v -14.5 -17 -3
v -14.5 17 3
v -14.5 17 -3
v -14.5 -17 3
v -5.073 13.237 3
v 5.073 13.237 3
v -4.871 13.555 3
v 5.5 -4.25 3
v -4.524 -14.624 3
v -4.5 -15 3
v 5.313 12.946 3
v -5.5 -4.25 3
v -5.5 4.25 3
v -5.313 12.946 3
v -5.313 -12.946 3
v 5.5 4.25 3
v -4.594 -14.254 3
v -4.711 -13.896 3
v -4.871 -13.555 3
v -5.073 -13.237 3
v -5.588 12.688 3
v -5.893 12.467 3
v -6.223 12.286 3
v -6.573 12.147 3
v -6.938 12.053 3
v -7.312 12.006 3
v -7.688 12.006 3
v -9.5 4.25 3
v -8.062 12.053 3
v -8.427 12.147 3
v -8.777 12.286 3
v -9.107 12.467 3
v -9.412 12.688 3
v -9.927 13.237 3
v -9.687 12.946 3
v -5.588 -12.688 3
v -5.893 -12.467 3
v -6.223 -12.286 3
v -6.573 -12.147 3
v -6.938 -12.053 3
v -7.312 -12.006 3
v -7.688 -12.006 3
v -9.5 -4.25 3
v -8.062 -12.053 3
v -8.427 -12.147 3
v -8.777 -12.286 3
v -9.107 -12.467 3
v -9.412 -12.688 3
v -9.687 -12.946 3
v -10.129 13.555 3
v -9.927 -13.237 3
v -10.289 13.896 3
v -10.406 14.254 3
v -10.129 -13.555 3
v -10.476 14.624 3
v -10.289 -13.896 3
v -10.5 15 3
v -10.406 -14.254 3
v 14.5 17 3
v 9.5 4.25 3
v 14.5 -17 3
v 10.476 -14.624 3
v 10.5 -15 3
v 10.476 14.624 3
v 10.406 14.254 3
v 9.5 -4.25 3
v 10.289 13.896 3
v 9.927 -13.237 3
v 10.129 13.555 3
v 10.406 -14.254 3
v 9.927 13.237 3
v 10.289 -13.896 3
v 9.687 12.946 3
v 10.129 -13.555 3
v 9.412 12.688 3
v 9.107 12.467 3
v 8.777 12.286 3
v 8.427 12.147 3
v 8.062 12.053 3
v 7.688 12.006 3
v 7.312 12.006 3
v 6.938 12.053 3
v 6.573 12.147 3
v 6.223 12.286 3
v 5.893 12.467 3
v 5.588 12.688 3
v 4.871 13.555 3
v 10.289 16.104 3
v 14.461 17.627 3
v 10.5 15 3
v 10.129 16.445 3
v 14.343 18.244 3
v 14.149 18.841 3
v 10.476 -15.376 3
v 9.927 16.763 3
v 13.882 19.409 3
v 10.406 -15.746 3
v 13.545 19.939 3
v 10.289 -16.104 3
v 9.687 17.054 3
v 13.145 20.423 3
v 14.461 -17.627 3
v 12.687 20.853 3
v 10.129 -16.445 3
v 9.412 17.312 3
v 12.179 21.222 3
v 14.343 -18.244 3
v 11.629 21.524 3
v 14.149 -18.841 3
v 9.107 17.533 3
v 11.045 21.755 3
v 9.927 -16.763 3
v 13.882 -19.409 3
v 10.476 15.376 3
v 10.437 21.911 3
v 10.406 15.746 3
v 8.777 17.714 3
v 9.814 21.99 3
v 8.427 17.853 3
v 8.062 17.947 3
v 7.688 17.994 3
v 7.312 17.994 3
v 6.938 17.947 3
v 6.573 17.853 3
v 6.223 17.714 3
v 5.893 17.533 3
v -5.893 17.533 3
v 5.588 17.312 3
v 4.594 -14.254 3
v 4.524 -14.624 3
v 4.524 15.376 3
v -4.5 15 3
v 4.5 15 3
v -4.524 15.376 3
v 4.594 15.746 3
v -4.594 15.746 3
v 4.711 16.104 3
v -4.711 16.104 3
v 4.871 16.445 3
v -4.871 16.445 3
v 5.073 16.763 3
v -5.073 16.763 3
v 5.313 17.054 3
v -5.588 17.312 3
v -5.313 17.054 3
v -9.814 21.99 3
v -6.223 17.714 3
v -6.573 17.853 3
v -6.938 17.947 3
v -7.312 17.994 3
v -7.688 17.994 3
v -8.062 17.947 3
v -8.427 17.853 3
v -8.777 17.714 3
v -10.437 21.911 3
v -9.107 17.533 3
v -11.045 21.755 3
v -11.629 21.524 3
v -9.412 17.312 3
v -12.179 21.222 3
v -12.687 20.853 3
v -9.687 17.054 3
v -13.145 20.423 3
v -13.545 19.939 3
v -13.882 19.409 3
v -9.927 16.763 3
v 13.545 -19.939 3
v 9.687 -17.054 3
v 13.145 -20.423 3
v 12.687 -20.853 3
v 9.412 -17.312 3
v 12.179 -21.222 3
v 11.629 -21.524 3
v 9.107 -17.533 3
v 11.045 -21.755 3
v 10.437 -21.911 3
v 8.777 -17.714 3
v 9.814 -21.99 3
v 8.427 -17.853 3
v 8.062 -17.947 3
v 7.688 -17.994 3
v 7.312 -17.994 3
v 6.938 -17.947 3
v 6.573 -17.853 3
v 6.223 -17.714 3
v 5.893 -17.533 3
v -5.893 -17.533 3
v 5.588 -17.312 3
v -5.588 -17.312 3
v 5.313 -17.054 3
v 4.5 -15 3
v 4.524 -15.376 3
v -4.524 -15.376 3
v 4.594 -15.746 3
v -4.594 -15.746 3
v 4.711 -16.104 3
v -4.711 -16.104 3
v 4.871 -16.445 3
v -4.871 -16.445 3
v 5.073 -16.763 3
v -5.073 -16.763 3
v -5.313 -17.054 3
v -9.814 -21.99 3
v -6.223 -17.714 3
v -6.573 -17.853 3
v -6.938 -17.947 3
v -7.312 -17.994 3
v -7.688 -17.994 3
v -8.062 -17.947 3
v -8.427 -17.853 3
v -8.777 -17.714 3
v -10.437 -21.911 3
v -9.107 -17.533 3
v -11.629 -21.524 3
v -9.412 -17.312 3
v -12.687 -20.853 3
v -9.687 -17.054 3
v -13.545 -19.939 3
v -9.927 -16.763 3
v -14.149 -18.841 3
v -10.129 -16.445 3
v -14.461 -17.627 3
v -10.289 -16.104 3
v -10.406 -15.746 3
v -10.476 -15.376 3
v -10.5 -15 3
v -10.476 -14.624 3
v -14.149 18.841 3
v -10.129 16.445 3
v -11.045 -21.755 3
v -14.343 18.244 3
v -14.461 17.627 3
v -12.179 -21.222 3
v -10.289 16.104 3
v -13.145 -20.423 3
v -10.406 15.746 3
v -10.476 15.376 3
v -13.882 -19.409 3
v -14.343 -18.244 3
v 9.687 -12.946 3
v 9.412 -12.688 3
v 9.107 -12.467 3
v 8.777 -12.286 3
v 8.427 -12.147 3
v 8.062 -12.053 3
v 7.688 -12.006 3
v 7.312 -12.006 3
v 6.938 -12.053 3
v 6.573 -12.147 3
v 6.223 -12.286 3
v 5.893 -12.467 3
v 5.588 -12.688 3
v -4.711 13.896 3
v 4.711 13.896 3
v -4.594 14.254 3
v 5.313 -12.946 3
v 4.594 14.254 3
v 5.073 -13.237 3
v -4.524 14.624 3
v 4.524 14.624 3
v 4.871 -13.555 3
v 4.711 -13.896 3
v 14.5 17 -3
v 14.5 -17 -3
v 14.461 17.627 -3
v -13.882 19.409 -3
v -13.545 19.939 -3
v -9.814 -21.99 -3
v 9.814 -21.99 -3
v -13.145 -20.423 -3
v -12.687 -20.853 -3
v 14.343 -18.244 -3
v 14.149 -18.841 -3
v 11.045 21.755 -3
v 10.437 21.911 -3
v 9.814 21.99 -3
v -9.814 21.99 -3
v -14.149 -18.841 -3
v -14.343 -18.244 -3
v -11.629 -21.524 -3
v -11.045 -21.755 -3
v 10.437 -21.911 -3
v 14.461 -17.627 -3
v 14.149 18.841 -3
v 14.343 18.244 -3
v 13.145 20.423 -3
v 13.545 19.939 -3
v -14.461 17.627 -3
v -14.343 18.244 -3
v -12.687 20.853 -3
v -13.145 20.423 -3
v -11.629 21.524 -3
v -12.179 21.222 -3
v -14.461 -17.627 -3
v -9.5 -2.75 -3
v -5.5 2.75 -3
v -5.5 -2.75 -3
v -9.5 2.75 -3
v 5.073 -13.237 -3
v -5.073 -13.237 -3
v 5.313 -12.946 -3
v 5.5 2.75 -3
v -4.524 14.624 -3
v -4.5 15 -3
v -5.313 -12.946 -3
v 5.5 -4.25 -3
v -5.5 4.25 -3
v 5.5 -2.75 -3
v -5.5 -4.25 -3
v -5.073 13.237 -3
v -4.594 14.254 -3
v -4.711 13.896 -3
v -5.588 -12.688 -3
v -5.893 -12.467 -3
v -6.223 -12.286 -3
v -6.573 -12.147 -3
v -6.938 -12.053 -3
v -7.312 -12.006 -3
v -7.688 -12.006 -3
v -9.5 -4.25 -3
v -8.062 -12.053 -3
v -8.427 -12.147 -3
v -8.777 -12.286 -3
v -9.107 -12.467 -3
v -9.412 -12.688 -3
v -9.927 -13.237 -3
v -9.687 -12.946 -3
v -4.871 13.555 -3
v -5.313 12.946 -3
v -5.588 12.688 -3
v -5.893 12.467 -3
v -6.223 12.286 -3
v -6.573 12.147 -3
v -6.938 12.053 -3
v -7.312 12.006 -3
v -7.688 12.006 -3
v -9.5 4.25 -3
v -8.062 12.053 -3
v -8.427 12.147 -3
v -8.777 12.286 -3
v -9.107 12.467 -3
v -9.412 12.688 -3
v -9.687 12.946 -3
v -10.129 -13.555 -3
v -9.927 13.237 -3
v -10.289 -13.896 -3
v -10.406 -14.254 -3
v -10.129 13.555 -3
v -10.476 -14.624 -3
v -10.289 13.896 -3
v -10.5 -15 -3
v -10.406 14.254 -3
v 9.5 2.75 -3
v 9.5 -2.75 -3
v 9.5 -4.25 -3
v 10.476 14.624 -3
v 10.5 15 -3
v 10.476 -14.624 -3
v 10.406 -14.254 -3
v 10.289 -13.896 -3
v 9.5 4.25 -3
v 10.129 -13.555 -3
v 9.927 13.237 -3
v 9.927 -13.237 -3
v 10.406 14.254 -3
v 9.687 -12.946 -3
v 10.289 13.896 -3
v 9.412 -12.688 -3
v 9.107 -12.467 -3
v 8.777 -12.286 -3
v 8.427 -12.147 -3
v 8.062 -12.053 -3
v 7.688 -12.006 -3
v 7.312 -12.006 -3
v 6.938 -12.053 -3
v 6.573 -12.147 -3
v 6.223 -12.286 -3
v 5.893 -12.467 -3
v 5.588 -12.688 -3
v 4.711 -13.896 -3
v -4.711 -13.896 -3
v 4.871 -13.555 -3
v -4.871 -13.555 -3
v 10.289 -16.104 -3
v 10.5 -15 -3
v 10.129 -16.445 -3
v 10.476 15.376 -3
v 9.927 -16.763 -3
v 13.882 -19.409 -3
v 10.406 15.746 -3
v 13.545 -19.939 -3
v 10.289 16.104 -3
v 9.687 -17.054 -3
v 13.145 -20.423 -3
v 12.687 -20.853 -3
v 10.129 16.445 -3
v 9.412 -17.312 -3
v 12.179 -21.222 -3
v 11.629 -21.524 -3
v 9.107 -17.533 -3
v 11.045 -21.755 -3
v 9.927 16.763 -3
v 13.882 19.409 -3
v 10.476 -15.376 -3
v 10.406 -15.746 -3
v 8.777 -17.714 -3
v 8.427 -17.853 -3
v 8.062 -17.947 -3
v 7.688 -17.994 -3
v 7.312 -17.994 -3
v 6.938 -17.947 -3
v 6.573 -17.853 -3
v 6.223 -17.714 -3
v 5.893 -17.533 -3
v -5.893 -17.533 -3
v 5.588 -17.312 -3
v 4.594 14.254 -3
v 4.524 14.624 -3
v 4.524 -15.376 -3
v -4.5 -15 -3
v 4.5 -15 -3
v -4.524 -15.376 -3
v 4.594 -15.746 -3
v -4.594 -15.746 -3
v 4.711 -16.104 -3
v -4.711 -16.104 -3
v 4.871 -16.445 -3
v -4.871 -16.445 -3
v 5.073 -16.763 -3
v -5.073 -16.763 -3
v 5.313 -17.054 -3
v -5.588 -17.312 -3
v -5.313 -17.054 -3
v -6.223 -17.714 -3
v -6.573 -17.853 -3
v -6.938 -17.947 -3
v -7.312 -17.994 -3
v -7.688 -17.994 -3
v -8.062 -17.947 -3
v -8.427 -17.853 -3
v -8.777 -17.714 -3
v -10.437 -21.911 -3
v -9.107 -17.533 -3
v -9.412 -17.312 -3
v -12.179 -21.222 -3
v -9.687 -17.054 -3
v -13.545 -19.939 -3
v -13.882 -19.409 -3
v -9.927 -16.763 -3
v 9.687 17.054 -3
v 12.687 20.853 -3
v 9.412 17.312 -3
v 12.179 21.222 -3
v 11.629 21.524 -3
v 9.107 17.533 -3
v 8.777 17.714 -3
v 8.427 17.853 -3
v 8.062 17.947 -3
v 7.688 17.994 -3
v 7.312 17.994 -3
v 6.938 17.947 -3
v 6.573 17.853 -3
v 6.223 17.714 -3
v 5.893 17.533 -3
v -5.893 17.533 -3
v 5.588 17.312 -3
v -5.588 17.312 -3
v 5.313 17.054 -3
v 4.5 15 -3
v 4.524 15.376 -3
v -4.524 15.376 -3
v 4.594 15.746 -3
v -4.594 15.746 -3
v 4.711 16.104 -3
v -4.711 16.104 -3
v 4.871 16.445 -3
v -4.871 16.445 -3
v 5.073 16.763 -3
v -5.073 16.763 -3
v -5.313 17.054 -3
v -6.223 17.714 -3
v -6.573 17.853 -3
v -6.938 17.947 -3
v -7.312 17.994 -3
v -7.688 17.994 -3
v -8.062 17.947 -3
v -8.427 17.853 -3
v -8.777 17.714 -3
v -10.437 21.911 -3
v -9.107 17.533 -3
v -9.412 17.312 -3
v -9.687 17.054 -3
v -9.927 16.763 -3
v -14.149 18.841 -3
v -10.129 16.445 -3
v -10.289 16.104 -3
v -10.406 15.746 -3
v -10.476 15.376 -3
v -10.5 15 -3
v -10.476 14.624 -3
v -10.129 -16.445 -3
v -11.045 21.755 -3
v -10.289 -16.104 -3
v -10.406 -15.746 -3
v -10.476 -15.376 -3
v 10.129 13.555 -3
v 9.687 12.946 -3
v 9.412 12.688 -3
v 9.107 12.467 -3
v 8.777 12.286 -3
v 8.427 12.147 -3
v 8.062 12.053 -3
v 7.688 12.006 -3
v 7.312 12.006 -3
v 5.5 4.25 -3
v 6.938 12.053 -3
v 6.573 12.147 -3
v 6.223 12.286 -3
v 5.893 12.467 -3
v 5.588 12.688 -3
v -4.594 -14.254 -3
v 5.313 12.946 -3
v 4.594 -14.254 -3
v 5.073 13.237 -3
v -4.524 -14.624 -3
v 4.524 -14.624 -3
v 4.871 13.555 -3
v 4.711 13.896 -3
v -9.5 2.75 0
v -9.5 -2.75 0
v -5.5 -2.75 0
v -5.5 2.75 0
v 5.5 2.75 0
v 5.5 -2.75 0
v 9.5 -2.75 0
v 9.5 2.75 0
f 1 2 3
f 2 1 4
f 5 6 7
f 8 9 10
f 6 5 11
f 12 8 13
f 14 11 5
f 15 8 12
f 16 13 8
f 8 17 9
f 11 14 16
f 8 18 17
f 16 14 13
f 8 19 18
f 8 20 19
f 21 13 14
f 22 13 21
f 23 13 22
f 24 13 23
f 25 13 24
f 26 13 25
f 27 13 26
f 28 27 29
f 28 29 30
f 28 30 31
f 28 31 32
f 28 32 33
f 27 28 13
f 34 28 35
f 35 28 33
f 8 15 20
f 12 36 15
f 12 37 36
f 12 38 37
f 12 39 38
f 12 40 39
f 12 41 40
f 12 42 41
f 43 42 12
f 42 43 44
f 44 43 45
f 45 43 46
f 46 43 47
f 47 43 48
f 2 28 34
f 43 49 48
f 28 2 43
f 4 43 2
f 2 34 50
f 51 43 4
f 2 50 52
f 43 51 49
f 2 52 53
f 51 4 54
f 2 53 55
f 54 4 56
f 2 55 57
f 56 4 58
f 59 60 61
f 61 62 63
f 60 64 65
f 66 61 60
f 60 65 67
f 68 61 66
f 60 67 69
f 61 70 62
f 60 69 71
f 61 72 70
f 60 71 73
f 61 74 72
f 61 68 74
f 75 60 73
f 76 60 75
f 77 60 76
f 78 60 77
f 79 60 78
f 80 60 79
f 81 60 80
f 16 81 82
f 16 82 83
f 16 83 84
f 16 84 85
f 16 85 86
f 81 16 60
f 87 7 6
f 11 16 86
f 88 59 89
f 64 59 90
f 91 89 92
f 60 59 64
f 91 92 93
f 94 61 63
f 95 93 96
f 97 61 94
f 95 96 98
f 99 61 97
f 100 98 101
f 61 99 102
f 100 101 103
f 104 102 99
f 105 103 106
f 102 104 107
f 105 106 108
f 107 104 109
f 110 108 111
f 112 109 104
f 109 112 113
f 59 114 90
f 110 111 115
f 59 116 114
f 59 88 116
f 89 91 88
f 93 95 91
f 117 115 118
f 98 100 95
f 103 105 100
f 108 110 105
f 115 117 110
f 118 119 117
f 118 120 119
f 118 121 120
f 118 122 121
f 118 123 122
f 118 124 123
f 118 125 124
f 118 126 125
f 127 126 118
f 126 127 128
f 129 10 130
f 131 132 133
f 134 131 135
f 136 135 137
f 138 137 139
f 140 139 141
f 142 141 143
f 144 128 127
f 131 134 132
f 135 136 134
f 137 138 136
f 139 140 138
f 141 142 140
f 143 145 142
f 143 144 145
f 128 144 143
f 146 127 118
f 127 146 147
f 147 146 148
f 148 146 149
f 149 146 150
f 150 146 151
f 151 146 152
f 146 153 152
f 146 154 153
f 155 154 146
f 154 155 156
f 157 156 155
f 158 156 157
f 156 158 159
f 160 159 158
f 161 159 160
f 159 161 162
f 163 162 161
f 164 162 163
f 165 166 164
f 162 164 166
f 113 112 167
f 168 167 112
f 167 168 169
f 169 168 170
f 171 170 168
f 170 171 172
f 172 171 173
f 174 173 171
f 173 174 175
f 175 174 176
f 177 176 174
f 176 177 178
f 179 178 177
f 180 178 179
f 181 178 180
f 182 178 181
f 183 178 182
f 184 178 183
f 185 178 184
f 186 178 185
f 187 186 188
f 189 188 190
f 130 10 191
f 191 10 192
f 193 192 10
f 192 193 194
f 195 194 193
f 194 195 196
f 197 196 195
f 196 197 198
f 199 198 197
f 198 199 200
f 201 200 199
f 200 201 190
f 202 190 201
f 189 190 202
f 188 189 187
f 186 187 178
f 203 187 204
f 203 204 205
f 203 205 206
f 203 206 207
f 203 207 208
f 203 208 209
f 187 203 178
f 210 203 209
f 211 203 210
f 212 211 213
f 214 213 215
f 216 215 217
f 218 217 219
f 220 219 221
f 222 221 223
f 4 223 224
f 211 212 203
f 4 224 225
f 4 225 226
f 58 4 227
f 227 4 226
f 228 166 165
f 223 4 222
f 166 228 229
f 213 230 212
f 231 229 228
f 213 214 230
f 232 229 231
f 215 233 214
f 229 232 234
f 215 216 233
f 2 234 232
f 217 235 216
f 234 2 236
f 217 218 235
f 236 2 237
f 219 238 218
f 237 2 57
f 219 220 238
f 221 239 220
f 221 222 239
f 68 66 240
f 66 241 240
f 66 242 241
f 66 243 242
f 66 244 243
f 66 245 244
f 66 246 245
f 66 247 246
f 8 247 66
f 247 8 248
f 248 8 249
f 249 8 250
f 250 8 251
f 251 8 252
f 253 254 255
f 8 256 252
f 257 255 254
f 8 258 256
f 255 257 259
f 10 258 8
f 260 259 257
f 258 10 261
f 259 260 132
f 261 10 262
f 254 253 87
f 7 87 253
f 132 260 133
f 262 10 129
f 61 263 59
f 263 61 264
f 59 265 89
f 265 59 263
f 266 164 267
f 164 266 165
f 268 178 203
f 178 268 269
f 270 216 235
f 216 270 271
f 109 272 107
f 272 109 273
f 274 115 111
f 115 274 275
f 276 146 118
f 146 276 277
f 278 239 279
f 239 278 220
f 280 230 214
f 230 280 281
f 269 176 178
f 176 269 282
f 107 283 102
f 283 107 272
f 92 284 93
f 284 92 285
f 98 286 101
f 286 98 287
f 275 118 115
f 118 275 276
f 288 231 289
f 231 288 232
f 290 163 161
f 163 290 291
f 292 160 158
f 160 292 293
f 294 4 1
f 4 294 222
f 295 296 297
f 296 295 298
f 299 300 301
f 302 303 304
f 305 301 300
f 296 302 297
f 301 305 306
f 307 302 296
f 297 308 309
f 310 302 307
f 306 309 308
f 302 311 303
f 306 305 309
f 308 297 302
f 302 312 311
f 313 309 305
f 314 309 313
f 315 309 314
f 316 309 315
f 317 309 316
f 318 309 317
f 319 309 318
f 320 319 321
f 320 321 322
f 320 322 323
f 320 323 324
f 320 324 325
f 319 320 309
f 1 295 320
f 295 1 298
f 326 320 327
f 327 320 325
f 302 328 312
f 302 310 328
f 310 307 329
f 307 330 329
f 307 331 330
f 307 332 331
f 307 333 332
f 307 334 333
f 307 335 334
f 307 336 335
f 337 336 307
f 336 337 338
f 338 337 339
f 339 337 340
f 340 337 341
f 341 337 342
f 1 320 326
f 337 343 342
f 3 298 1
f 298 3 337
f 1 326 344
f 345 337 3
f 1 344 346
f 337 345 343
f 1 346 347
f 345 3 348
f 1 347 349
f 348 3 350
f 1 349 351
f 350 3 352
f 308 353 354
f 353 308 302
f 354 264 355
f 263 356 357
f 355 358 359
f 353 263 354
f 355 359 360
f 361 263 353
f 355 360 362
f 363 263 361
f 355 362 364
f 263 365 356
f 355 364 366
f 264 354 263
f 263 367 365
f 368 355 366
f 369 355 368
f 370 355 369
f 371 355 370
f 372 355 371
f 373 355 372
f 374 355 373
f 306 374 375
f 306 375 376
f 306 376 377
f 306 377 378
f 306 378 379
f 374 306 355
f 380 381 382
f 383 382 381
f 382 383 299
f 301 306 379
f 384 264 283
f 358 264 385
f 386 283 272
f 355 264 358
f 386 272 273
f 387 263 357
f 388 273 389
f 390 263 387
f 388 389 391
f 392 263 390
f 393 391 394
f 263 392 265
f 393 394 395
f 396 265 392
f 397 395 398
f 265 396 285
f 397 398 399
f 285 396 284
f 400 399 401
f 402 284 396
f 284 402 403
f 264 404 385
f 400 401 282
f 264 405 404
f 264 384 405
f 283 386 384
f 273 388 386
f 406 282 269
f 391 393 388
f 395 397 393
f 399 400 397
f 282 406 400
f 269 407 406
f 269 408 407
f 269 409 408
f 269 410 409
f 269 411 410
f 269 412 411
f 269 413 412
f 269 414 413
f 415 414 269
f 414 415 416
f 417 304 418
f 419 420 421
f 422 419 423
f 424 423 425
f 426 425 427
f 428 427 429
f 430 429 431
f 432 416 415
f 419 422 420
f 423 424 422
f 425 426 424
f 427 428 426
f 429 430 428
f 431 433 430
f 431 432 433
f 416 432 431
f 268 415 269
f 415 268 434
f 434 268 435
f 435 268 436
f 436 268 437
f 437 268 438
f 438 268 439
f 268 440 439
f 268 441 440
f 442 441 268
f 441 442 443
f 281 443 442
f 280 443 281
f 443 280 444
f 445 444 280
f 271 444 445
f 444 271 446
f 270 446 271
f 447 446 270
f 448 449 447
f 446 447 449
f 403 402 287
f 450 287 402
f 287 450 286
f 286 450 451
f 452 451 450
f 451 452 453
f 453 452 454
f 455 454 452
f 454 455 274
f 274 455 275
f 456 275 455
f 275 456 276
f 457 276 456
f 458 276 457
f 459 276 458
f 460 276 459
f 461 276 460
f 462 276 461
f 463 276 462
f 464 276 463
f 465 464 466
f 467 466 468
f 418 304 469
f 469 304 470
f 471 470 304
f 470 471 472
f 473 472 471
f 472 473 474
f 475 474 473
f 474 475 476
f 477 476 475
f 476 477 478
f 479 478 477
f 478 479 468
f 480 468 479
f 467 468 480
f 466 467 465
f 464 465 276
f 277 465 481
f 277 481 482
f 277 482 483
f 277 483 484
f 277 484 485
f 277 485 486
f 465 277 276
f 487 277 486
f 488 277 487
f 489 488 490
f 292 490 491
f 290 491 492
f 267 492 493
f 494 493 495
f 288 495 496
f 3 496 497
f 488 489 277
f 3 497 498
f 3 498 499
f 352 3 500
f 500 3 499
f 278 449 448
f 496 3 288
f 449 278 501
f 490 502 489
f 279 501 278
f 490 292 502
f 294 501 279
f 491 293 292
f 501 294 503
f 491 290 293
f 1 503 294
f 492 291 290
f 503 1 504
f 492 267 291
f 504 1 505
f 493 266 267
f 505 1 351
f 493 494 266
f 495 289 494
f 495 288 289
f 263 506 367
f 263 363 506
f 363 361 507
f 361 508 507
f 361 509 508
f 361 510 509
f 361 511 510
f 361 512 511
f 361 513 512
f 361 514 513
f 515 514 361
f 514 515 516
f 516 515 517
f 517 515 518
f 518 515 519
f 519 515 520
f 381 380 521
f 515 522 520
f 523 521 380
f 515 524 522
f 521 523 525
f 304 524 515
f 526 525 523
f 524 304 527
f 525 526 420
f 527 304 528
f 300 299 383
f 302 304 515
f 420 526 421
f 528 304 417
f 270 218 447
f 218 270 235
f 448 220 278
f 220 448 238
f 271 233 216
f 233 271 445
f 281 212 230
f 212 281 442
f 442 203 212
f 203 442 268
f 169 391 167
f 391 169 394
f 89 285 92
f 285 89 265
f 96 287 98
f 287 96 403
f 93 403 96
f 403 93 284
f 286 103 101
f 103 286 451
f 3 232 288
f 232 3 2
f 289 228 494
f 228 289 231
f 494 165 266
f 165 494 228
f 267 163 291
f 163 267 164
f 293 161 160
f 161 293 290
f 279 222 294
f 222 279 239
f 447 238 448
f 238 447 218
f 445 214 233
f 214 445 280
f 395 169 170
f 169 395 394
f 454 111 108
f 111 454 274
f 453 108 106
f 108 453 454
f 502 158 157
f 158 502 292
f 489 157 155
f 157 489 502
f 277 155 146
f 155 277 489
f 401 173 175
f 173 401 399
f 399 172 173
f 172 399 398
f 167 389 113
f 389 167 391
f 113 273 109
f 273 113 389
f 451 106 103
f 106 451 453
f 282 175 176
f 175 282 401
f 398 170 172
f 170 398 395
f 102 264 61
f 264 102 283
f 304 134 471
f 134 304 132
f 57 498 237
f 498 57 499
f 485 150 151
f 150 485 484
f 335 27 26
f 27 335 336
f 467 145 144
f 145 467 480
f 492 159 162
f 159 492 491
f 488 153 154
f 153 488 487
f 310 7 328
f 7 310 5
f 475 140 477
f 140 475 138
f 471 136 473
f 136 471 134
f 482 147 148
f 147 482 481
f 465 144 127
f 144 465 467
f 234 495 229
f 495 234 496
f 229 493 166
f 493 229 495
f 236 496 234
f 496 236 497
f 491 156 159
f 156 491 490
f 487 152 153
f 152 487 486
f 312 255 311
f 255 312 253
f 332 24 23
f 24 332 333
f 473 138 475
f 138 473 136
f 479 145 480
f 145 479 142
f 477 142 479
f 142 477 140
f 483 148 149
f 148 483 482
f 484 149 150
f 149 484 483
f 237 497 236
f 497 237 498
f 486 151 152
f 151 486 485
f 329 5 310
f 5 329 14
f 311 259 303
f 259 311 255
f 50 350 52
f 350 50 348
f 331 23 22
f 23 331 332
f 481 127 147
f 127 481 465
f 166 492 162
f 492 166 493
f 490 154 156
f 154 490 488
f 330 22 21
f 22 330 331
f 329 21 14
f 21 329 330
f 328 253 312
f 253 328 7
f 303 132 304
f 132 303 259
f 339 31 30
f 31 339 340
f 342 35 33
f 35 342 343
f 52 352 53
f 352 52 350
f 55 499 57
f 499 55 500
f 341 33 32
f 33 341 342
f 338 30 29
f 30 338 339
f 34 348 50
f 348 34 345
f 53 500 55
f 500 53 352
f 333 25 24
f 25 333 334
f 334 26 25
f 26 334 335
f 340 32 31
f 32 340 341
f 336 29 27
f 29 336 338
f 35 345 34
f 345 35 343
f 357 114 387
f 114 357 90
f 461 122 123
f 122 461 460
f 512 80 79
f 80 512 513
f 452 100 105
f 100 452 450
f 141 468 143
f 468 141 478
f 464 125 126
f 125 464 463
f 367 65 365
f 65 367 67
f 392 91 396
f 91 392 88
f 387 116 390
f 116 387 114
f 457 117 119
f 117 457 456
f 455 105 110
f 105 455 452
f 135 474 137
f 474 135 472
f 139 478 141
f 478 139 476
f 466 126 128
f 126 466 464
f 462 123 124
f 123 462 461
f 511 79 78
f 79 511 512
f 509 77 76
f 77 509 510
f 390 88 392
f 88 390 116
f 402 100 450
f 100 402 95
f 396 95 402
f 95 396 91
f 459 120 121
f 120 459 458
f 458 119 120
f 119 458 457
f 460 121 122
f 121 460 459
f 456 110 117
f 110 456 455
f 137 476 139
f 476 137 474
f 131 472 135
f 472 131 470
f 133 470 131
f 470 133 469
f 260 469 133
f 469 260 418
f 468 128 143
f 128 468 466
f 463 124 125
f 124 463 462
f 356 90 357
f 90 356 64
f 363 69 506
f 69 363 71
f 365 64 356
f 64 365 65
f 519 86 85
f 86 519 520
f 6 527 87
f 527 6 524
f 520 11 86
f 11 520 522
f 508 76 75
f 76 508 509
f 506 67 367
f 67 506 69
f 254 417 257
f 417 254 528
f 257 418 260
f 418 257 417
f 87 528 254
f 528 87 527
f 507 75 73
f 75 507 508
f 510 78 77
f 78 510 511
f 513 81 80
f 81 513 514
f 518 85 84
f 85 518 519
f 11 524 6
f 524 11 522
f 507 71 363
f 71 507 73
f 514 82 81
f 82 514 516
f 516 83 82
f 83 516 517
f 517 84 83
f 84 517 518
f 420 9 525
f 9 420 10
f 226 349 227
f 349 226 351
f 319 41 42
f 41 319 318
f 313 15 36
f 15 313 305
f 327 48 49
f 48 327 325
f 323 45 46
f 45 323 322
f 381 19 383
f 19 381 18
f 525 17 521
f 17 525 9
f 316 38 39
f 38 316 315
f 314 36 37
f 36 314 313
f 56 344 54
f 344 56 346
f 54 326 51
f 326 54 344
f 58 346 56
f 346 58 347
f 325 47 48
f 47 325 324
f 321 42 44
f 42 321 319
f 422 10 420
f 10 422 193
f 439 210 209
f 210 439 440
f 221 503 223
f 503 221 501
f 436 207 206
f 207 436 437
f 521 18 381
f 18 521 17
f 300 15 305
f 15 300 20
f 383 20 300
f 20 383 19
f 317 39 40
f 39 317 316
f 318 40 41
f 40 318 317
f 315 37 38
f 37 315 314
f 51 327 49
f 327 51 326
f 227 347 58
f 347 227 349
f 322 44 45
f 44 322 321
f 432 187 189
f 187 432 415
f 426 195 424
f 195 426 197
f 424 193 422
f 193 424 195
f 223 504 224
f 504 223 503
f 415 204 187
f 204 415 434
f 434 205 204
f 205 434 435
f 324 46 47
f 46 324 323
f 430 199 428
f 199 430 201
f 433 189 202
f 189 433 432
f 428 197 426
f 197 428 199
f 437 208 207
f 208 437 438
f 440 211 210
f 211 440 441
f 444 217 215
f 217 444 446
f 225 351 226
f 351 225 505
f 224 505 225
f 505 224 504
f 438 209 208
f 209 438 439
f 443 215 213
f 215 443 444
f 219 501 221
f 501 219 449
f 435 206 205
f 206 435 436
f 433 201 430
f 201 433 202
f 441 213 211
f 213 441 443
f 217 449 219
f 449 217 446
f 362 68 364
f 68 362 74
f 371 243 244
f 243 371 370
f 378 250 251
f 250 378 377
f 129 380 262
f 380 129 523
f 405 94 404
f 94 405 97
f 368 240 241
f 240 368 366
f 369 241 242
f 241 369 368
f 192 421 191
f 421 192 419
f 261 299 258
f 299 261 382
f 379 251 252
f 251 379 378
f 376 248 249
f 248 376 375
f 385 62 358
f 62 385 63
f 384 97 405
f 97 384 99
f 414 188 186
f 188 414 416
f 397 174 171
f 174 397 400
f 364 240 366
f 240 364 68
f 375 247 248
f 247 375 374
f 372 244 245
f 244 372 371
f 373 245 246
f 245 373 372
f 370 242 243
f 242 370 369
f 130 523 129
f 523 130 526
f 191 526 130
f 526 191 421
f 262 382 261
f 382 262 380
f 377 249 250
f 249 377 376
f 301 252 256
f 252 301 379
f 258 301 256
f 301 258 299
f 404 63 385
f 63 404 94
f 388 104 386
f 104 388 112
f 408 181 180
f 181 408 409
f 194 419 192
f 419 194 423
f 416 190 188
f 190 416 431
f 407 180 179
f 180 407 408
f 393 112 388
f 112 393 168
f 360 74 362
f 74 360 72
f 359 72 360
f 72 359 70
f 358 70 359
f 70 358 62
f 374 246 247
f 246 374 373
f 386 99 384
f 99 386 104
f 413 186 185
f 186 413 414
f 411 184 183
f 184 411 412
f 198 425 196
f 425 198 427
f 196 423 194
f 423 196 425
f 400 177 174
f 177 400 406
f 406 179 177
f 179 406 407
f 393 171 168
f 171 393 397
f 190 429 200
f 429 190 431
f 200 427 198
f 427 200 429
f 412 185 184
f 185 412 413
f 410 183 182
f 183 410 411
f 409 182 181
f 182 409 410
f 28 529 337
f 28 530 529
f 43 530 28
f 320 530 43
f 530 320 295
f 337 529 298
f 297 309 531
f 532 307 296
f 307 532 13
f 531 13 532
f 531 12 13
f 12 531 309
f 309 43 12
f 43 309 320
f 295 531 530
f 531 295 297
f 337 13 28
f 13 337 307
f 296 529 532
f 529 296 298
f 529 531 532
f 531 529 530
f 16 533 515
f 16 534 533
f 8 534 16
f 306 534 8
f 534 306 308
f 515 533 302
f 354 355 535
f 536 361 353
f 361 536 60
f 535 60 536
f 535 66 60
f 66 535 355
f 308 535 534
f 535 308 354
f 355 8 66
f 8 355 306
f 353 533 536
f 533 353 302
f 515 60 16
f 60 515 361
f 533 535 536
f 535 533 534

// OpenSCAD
$fn = 50;


difference() {
	union() {
		translate(v = [0, 0, -3.0000000000]) {
			hull() {
				translate(v = [-9.5000000000, 17.0000000000, 0]) {
					cylinder(h = 6, r = 5);
				}
				translate(v = [9.5000000000, 17.0000000000, 0]) {
					cylinder(h = 6, r = 5);
				}
				translate(v = [-9.5000000000, -17.0000000000, 0]) {
					cylinder(h = 6, r = 5);
				}
				translate(v = [9.5000000000, -17.0000000000, 0]) {
					cylinder(h = 6, r = 5);
				}
			}
		}
		translate(v = [0, 0, -3.0000000000]) {
			hull() {
				translate(v = [-9.5000000000, 17.0000000000, 0]) {
					cylinder(h = 6, r = 5);
				}
				translate(v = [9.5000000000, 17.0000000000, 0]) {
					cylinder(h = 6, r = 5);
				}
				translate(v = [-9.5000000000, -17.0000000000, 0]) {
					cylinder(h = 6, r = 5);
				}
				translate(v = [9.5000000000, -17.0000000000, 0]) {
					cylinder(h = 6, r = 5);
				}
			}
		}
	}
	union() {
		translate(v = [-7.5000000000, 15.0000000000, -50.0000000000]) {
			cylinder(h = 100, r = 3.0000000000);
		}
		translate(v = [7.5000000000, 15.0000000000, -50.0000000000]) {
			cylinder(h = 100, r = 3.0000000000);
		}
		translate(v = [-7.5000000000, -15.0000000000, -50.0000000000]) {
			cylinder(h = 100, r = 3.0000000000);
		}
		translate(v = [7.5000000000, -15.0000000000, -50.0000000000]) {
			cylinder(h = 100, r = 3.0000000000);
		}
		translate(v = [-9.5000000000, -4.2500000000, -50]) {
			cube(size = [4, 1.5000000000, 100]);
		}
		translate(v = [-9.5000000000, 2.7500000000, -50]) {
			cube(size = [4, 1.5000000000, 100]);
		}
		translate(v = [-9.5000000000, -4.2500000000, 0]) {
			cube(size = [4, 8.5000000000, 3]);
		}
		translate(v = [5.5000000000, -4.2500000000, -50]) {
			cube(size = [4, 1.5000000000, 100]);
		}
		translate(v = [5.5000000000, 2.7500000000, -50]) {
			cube(size = [4, 1.5000000000, 100]);
		}
		translate(v = [5.5000000000, -4.2500000000, 0]) {
			cube(size = [4, 8.5000000000, 3]);
		}
	}
}
